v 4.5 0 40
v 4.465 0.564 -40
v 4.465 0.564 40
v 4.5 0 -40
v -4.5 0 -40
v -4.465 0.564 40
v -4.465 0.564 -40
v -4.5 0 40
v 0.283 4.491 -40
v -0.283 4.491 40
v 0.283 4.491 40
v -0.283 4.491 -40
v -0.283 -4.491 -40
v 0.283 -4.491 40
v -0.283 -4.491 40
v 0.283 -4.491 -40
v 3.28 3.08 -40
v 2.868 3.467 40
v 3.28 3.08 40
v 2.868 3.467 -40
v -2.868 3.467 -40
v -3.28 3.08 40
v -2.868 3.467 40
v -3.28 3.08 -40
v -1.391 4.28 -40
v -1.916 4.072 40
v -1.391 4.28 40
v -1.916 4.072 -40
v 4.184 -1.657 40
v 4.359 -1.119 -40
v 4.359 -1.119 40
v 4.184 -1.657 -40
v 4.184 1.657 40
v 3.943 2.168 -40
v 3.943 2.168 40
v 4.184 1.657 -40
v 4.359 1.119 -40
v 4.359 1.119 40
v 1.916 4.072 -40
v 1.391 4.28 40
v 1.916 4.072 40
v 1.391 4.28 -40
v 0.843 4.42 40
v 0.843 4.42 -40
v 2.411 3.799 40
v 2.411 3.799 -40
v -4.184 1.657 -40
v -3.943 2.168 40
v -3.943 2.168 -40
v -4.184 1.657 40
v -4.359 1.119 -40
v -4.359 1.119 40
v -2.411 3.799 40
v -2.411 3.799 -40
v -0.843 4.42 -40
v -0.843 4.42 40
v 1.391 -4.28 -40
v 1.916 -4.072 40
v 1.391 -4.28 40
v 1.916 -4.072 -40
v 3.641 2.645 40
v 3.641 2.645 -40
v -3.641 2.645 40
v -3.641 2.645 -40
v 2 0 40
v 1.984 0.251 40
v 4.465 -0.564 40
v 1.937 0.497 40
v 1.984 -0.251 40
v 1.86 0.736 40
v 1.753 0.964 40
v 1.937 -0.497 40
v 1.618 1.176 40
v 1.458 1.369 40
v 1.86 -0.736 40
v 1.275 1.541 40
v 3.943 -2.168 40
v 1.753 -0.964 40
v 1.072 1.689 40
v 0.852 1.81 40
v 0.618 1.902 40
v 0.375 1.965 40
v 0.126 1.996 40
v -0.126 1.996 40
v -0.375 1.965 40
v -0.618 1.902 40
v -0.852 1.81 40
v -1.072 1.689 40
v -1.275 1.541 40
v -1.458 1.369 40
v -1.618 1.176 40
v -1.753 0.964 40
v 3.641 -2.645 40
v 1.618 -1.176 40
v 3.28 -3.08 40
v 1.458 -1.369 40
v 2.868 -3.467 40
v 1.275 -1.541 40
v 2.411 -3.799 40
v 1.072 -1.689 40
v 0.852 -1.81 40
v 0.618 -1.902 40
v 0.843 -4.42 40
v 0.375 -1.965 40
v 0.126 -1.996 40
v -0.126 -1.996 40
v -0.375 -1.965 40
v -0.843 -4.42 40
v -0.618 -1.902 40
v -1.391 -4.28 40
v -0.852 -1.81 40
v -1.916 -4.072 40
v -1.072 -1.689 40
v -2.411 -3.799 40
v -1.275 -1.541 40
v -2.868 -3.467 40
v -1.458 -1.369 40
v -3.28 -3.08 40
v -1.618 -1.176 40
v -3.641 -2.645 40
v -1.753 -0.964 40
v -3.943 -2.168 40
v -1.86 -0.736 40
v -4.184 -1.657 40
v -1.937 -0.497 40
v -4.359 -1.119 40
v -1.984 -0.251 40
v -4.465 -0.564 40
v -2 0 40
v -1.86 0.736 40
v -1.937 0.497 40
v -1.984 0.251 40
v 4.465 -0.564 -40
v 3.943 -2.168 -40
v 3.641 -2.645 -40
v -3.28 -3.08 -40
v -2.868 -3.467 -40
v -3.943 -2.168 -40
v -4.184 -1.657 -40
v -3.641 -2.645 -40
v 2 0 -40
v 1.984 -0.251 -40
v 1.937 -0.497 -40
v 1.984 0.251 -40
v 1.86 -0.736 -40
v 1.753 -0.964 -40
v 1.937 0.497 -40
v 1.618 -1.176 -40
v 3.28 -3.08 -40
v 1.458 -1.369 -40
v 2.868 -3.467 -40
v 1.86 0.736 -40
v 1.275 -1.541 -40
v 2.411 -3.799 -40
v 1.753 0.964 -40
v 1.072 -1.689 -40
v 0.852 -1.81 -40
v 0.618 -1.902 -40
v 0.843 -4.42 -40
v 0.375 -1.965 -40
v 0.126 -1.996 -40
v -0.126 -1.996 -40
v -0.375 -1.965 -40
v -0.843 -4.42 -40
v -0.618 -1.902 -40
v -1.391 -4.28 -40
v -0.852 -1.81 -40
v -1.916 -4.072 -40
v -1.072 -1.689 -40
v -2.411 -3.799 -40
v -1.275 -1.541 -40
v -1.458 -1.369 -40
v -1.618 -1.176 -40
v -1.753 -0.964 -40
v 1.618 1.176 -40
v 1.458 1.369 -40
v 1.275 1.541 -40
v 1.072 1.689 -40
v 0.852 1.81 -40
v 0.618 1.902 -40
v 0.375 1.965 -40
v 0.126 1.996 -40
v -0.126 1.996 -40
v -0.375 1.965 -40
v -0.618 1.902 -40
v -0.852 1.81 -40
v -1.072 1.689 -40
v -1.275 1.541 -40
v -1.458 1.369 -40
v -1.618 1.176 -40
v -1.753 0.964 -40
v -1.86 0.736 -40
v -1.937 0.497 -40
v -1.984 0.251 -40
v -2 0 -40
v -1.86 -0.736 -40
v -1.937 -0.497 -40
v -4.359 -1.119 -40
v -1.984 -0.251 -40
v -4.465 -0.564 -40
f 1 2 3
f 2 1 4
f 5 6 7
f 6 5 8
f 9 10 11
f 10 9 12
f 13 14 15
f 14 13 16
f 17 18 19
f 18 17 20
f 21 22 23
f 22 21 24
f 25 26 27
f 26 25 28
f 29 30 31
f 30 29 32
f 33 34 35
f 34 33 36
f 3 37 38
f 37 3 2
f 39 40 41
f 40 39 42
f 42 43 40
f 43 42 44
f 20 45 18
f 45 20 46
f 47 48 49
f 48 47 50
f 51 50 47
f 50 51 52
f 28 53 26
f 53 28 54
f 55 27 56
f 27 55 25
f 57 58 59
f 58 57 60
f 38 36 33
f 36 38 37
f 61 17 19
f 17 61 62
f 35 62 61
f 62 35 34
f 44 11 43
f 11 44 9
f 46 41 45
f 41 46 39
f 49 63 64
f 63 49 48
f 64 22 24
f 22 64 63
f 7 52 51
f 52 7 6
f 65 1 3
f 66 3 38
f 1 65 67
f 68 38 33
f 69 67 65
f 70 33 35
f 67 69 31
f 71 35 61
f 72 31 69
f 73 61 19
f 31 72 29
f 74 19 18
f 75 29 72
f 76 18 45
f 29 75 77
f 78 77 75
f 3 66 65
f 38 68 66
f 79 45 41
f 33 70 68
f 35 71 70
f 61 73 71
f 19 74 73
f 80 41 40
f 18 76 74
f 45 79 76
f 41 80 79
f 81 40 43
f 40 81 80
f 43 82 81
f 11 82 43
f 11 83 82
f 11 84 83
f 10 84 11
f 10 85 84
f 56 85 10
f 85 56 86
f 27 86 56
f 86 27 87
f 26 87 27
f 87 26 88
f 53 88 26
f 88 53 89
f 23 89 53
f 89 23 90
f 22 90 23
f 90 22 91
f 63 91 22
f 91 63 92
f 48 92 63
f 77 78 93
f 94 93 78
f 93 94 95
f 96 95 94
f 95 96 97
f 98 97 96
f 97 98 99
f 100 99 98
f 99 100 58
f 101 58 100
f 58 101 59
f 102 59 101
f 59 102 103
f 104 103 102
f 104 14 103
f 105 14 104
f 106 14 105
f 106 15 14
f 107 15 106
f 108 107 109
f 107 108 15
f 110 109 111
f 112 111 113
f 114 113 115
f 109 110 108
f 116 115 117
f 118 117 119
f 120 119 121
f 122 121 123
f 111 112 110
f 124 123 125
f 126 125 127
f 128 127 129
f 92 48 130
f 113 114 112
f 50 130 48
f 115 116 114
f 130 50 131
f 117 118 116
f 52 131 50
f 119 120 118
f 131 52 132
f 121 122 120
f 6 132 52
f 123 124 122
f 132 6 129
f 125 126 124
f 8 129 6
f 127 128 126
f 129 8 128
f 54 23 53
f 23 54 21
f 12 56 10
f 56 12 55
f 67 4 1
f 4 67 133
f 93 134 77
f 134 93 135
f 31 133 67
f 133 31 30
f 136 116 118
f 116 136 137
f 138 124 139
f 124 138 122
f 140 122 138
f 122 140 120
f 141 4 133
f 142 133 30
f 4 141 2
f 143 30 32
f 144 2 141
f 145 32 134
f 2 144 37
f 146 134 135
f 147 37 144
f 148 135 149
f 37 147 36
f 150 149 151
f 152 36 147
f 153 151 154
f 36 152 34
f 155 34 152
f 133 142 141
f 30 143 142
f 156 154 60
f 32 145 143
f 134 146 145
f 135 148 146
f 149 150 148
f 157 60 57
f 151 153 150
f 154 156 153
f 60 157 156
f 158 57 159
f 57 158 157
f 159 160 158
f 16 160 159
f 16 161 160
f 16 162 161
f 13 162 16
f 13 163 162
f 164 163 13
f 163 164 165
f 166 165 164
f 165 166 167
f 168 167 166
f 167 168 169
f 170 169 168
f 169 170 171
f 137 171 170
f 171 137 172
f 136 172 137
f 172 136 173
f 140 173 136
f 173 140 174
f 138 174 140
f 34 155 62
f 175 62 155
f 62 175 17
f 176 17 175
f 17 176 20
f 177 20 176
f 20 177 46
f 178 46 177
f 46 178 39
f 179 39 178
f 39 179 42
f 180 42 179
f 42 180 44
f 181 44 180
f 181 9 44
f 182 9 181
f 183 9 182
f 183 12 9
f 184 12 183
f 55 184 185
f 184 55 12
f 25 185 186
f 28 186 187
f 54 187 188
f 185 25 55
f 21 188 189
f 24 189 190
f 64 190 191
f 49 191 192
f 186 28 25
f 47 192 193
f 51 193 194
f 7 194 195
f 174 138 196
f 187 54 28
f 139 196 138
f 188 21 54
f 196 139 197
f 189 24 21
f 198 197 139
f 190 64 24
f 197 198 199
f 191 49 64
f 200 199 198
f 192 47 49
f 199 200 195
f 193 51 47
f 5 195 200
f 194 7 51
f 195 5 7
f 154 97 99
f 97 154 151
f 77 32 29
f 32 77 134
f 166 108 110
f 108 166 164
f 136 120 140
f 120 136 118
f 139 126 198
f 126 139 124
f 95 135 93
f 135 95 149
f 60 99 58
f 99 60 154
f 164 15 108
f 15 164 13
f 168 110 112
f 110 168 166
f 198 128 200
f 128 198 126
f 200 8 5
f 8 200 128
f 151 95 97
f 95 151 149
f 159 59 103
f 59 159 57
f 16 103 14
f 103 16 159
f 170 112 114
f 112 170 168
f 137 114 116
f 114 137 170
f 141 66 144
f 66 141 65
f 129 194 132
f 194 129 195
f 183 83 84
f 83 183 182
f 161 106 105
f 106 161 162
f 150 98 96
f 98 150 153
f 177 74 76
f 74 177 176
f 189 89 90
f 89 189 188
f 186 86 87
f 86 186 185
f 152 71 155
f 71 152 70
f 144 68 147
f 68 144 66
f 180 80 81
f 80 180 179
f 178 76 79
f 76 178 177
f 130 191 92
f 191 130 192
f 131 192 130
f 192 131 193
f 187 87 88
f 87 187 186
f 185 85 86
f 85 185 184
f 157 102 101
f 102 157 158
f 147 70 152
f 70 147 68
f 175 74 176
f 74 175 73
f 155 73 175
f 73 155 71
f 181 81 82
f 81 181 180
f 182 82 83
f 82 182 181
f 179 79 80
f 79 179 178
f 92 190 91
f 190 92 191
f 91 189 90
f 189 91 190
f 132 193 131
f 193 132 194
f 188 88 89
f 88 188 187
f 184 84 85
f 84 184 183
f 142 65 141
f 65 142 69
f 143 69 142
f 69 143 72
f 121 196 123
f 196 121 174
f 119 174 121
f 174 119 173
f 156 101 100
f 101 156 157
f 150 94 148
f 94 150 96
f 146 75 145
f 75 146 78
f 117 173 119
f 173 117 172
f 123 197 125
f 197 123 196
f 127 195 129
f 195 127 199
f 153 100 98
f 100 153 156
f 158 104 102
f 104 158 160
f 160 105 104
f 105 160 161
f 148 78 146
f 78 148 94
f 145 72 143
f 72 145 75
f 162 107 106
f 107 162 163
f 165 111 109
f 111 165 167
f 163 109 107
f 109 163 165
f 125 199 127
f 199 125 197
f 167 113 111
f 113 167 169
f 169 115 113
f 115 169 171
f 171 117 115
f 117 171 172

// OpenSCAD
$fn = 50;


difference() {
	union() {
		translate(v = [0, 0, -40.0000000000]) {
			cylinder(h = 80, r = 4.5000000000);
		}
	}
	union() {
		translate(v = [0, 0, -100.0000000000]) {
			cylinder(h = 200, r = 2);
		}
	}
}
